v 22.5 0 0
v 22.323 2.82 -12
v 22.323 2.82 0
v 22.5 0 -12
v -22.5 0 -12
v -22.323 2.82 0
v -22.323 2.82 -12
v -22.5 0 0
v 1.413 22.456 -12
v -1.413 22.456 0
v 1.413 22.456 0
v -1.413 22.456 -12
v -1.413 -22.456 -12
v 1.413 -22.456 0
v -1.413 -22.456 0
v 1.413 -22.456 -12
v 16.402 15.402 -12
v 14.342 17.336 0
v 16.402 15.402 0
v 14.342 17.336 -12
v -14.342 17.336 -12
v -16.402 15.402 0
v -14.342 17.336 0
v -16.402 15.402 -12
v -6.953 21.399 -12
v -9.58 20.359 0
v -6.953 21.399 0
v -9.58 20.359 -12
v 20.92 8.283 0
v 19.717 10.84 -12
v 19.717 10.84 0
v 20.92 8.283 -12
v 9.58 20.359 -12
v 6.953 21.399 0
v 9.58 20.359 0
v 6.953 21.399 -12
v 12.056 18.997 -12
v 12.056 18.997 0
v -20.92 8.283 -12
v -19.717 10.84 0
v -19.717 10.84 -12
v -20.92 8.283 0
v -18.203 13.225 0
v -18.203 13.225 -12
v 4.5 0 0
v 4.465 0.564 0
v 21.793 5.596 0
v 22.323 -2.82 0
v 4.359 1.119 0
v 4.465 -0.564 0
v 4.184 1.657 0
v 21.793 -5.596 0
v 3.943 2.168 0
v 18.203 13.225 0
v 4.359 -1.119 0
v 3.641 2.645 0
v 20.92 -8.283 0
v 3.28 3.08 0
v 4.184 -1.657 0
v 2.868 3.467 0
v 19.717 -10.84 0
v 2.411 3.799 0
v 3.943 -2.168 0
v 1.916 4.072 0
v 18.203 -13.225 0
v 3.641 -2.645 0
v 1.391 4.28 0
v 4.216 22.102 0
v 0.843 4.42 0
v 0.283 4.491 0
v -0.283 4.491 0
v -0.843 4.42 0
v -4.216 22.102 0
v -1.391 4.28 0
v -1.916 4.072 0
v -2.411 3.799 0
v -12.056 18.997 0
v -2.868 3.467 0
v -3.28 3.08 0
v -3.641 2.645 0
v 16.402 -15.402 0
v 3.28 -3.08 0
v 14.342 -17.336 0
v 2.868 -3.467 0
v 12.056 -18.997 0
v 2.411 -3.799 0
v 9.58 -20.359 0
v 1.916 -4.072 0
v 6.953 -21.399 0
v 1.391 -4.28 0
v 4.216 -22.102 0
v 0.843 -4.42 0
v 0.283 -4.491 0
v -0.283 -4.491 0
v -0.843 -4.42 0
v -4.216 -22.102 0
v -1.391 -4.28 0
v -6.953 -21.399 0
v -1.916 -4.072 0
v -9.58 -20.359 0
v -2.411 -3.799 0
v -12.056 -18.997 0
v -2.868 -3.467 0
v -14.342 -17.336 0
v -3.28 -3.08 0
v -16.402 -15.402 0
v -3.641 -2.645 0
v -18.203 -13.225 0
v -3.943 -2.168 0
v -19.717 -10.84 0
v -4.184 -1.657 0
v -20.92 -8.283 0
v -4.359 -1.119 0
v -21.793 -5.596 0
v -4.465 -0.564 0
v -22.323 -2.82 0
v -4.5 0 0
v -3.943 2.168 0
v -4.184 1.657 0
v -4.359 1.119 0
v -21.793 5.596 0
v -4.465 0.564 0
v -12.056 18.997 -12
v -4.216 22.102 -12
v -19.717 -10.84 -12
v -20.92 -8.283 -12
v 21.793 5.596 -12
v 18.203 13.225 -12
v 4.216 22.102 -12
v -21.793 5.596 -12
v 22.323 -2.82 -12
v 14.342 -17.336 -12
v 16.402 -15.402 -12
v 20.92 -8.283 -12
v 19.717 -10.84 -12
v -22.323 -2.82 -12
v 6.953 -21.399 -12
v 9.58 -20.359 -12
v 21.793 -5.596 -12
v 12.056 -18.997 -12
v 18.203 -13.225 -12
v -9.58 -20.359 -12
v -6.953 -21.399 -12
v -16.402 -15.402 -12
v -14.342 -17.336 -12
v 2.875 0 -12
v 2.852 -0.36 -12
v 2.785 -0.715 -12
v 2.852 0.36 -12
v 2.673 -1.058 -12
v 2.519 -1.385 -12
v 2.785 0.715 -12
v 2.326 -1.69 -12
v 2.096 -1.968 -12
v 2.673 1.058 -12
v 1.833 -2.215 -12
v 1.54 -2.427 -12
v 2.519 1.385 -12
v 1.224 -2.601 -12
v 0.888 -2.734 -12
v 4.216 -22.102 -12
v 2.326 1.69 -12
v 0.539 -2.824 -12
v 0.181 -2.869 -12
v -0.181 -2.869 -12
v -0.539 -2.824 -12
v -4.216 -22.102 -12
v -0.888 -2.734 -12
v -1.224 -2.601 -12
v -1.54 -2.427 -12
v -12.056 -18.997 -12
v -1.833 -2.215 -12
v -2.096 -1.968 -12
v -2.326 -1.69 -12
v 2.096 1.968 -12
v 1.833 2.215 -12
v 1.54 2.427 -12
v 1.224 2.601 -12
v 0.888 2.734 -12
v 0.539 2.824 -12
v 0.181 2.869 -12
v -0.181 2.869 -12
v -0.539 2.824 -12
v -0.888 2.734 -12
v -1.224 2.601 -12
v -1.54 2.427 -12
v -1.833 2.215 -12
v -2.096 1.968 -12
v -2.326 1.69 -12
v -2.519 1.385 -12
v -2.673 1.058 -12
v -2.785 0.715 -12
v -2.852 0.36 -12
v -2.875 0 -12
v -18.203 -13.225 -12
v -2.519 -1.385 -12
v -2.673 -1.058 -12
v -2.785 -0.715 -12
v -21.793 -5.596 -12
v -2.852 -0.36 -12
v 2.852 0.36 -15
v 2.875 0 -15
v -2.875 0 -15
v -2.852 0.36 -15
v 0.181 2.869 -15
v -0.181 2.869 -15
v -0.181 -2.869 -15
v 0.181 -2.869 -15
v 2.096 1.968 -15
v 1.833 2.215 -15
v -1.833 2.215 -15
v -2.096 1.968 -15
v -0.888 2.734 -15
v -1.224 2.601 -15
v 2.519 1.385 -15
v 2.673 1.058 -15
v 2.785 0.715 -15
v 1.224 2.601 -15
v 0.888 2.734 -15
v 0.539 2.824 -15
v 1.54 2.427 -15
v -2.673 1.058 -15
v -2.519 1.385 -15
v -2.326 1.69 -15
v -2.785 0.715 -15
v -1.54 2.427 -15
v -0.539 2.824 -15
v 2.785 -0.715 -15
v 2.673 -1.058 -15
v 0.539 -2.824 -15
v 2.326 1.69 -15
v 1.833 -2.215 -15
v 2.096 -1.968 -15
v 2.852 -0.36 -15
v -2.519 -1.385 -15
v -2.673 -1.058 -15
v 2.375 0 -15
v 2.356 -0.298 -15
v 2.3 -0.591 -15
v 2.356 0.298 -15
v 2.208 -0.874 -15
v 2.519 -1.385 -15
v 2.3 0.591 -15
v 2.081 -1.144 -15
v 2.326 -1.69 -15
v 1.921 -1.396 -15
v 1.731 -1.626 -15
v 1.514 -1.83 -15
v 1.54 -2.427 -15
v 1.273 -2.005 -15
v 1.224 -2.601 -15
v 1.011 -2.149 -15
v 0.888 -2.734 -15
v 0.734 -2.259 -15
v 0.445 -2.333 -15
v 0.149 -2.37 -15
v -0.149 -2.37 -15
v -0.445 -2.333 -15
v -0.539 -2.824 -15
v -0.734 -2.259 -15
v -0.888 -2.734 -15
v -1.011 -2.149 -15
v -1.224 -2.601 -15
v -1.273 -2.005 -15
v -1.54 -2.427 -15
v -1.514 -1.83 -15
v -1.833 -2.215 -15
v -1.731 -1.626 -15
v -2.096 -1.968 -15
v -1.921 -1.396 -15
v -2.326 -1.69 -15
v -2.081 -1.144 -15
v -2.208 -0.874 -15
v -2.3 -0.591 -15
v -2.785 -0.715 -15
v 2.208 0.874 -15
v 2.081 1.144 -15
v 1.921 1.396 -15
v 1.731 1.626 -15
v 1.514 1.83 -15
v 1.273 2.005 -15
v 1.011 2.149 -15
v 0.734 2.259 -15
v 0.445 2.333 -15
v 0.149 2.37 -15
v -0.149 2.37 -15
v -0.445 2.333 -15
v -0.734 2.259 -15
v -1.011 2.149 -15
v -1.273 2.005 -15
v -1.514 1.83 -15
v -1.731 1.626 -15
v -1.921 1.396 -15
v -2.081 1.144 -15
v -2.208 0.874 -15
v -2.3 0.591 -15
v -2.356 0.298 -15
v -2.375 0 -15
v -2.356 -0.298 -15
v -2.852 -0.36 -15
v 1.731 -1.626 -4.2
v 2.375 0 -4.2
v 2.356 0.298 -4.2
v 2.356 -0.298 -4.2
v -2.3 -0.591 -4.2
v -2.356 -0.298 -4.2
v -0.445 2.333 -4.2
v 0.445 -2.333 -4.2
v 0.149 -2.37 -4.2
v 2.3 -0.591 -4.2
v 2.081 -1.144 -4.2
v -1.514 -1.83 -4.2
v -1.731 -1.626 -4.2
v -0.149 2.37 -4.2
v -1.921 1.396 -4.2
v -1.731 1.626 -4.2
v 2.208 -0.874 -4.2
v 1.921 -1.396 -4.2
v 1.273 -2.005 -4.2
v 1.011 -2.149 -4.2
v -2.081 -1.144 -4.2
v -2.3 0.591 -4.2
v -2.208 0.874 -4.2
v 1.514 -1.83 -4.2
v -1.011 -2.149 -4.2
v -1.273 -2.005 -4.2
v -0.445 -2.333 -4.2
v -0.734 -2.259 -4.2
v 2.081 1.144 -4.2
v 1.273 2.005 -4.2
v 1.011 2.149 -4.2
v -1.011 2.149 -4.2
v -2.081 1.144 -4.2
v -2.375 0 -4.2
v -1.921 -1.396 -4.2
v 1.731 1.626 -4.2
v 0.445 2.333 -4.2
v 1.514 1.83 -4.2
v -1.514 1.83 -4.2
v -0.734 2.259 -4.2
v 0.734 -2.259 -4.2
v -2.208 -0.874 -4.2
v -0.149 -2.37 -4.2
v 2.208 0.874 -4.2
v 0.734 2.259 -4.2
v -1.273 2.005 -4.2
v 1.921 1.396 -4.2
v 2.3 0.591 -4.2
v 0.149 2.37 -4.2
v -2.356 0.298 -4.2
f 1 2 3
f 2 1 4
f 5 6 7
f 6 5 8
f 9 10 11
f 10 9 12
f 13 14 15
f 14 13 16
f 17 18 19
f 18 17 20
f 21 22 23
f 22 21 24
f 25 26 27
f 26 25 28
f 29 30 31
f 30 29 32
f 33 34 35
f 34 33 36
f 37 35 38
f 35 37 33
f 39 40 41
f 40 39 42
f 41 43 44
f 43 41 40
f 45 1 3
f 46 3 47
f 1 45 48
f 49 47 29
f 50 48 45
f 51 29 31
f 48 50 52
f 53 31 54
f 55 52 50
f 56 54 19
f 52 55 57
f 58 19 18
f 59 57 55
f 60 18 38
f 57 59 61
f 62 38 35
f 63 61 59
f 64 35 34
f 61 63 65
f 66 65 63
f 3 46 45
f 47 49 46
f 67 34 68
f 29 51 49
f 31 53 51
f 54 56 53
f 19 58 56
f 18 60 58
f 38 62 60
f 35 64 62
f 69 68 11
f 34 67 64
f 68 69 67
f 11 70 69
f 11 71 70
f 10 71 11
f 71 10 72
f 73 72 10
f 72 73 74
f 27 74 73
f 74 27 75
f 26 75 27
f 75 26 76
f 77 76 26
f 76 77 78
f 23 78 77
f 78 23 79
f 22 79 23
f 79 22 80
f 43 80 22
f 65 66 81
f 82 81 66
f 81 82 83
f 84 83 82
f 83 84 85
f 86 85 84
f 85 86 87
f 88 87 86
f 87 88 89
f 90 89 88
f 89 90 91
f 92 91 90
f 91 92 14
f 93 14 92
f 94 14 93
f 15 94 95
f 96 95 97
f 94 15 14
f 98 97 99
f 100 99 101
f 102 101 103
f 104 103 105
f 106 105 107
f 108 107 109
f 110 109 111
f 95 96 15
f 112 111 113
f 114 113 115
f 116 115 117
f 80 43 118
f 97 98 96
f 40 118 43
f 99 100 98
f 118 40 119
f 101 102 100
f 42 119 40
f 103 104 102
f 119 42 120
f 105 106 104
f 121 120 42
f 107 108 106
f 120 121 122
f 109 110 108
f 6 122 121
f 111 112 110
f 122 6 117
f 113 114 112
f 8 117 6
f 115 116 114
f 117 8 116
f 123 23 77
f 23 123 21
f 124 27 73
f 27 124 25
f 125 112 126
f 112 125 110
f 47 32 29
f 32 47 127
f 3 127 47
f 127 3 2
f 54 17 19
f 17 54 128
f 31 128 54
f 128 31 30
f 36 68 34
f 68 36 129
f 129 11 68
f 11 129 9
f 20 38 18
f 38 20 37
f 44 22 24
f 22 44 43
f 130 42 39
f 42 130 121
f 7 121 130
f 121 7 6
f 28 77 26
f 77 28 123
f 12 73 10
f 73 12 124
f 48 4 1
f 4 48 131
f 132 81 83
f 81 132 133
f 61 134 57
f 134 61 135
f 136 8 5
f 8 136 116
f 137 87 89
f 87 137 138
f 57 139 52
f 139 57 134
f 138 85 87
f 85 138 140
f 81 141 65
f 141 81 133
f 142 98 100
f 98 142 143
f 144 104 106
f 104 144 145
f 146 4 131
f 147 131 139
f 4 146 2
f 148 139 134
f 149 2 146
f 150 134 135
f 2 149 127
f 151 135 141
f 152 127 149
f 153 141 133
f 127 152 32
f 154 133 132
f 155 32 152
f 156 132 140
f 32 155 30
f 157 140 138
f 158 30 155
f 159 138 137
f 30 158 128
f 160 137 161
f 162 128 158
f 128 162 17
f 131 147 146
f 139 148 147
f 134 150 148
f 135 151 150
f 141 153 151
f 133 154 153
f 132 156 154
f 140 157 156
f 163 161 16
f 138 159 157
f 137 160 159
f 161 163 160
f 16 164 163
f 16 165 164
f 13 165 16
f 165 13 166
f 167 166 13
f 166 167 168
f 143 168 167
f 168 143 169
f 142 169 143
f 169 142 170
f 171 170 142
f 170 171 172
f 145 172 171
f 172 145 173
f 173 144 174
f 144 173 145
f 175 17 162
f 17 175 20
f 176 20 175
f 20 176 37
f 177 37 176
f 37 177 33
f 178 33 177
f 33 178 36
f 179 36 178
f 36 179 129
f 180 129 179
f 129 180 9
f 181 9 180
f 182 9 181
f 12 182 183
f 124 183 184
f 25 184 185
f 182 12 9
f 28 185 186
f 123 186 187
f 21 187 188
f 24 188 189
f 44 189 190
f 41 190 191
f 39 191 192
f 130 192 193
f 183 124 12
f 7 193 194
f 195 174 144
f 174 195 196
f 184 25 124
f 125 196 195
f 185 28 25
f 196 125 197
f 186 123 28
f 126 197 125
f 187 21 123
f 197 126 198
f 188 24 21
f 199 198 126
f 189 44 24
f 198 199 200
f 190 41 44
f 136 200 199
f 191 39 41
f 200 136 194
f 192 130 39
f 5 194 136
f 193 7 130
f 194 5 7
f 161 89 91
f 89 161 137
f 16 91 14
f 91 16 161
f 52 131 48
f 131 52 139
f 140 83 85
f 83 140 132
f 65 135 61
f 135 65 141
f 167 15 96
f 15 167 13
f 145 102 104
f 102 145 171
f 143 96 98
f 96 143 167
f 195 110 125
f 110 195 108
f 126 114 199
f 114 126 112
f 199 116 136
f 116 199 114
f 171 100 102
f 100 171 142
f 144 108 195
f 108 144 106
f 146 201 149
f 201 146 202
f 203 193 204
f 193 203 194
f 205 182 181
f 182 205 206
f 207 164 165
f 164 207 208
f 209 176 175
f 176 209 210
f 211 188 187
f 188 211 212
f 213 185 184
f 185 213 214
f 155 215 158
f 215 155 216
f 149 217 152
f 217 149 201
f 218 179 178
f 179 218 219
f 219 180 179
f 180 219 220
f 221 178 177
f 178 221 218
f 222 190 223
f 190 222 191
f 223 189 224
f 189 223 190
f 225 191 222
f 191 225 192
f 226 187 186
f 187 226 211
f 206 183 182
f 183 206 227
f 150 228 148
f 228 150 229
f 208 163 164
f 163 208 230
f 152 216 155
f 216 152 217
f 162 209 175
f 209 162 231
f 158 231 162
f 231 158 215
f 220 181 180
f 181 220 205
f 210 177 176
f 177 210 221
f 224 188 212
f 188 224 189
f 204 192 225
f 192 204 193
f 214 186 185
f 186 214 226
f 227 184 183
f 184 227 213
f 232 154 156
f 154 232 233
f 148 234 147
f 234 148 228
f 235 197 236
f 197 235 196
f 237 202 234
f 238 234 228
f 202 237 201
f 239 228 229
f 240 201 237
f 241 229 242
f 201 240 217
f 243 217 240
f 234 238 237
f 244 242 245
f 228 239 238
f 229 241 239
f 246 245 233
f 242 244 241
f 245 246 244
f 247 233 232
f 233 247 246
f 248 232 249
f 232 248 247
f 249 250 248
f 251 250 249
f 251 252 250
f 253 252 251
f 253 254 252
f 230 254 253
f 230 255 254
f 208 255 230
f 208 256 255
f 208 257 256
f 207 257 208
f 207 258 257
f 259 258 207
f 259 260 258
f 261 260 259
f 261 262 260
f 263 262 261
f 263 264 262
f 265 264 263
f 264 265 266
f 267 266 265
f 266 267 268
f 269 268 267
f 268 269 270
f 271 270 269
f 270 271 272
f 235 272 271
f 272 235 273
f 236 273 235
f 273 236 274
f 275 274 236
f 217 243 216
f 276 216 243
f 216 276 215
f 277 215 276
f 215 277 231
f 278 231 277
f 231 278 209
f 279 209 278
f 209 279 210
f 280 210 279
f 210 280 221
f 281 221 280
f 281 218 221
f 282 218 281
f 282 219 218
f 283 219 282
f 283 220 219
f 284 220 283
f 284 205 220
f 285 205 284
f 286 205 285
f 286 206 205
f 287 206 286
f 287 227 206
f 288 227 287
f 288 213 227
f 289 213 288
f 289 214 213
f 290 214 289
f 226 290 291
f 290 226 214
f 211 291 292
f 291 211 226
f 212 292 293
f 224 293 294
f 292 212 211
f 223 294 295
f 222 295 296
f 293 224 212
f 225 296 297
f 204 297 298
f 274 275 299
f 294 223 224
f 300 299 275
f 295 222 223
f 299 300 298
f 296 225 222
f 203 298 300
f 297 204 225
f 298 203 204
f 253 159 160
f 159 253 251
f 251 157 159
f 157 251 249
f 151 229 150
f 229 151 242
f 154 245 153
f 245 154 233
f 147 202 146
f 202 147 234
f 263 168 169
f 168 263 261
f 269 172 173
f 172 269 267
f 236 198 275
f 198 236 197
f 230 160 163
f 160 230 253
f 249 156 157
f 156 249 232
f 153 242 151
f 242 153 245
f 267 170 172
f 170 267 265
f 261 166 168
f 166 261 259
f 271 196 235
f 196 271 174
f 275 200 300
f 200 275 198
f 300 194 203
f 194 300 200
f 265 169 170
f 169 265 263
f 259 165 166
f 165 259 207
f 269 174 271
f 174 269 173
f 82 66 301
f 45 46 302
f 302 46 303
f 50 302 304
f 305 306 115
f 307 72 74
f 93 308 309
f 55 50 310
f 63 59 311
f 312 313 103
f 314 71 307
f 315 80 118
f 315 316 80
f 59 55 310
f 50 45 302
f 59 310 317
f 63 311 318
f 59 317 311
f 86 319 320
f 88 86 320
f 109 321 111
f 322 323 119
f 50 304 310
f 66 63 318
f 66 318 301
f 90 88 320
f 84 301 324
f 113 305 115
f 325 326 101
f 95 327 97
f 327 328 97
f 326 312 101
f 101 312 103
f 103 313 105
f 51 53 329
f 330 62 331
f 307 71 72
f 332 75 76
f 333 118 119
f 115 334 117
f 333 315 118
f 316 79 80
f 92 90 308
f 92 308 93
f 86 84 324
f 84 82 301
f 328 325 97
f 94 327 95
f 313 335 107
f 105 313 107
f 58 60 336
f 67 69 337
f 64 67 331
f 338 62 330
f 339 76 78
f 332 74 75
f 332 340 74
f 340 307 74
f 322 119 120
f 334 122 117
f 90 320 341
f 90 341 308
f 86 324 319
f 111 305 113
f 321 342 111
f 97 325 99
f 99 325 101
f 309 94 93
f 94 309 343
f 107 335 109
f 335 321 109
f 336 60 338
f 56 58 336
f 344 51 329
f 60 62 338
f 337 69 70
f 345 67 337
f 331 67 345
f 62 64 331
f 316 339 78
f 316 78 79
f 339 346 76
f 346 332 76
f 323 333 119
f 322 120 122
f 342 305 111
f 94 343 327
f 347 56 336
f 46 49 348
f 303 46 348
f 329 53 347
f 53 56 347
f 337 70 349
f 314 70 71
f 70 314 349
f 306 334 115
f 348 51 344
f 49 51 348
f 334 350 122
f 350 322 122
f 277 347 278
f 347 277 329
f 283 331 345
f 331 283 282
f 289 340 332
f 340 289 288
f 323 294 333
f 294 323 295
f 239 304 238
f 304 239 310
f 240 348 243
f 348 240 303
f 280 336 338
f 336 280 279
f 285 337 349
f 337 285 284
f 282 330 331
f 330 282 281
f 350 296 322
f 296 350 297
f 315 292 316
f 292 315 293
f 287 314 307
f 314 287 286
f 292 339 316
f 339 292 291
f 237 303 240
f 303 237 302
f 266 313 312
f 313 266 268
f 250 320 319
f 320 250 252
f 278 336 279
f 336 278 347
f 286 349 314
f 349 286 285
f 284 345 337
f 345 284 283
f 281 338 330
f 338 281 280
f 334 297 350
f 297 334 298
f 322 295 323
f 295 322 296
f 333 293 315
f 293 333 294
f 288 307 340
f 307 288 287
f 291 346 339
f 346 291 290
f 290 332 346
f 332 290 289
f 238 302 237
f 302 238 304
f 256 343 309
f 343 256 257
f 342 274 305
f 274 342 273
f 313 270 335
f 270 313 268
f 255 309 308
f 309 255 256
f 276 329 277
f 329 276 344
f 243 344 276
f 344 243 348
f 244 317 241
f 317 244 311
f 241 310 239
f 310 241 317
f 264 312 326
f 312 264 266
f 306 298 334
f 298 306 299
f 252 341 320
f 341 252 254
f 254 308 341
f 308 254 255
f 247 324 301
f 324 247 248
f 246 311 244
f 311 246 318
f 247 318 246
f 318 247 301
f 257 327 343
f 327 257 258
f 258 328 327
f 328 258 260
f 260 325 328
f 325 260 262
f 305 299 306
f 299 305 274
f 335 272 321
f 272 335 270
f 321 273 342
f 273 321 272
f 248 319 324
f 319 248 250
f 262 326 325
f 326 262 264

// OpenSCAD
$fn = 50;


difference() {
	union() {
		translate(v = [0, 0, -12.0000000000]) {
			cylinder(h = 12, r = 22.5000000000);
		}
		translate(v = [0, 0, -15.0000000000]) {
			cylinder(h = 15, r = 2.8750000000);
		}
	}
	union() {
		translate(v = [0, 0, 0]) {
			rotate(a = [0, 0, 0]) {
				difference() {
					union() {
						translate(v = [0, 0, -15.0000000000]) {
							cylinder(h = 15, r = 2.2500000000);
						}
						translate(v = [0, 0, -4.2000000000]) {
							cylinder(h = 4.2000000000, r1 = 2.3750000000, r2 = 4.5000000000);
						}
						translate(v = [0, 0, -15.0000000000]) {
							cylinder(h = 15, r = 2.3750000000);
						}
						translate(v = [0, 0, -15.0000000000]) {
							cylinder(h = 15, r = 2.2500000000);
						}
					}
					union();
				}
			}
		}
	}
}
